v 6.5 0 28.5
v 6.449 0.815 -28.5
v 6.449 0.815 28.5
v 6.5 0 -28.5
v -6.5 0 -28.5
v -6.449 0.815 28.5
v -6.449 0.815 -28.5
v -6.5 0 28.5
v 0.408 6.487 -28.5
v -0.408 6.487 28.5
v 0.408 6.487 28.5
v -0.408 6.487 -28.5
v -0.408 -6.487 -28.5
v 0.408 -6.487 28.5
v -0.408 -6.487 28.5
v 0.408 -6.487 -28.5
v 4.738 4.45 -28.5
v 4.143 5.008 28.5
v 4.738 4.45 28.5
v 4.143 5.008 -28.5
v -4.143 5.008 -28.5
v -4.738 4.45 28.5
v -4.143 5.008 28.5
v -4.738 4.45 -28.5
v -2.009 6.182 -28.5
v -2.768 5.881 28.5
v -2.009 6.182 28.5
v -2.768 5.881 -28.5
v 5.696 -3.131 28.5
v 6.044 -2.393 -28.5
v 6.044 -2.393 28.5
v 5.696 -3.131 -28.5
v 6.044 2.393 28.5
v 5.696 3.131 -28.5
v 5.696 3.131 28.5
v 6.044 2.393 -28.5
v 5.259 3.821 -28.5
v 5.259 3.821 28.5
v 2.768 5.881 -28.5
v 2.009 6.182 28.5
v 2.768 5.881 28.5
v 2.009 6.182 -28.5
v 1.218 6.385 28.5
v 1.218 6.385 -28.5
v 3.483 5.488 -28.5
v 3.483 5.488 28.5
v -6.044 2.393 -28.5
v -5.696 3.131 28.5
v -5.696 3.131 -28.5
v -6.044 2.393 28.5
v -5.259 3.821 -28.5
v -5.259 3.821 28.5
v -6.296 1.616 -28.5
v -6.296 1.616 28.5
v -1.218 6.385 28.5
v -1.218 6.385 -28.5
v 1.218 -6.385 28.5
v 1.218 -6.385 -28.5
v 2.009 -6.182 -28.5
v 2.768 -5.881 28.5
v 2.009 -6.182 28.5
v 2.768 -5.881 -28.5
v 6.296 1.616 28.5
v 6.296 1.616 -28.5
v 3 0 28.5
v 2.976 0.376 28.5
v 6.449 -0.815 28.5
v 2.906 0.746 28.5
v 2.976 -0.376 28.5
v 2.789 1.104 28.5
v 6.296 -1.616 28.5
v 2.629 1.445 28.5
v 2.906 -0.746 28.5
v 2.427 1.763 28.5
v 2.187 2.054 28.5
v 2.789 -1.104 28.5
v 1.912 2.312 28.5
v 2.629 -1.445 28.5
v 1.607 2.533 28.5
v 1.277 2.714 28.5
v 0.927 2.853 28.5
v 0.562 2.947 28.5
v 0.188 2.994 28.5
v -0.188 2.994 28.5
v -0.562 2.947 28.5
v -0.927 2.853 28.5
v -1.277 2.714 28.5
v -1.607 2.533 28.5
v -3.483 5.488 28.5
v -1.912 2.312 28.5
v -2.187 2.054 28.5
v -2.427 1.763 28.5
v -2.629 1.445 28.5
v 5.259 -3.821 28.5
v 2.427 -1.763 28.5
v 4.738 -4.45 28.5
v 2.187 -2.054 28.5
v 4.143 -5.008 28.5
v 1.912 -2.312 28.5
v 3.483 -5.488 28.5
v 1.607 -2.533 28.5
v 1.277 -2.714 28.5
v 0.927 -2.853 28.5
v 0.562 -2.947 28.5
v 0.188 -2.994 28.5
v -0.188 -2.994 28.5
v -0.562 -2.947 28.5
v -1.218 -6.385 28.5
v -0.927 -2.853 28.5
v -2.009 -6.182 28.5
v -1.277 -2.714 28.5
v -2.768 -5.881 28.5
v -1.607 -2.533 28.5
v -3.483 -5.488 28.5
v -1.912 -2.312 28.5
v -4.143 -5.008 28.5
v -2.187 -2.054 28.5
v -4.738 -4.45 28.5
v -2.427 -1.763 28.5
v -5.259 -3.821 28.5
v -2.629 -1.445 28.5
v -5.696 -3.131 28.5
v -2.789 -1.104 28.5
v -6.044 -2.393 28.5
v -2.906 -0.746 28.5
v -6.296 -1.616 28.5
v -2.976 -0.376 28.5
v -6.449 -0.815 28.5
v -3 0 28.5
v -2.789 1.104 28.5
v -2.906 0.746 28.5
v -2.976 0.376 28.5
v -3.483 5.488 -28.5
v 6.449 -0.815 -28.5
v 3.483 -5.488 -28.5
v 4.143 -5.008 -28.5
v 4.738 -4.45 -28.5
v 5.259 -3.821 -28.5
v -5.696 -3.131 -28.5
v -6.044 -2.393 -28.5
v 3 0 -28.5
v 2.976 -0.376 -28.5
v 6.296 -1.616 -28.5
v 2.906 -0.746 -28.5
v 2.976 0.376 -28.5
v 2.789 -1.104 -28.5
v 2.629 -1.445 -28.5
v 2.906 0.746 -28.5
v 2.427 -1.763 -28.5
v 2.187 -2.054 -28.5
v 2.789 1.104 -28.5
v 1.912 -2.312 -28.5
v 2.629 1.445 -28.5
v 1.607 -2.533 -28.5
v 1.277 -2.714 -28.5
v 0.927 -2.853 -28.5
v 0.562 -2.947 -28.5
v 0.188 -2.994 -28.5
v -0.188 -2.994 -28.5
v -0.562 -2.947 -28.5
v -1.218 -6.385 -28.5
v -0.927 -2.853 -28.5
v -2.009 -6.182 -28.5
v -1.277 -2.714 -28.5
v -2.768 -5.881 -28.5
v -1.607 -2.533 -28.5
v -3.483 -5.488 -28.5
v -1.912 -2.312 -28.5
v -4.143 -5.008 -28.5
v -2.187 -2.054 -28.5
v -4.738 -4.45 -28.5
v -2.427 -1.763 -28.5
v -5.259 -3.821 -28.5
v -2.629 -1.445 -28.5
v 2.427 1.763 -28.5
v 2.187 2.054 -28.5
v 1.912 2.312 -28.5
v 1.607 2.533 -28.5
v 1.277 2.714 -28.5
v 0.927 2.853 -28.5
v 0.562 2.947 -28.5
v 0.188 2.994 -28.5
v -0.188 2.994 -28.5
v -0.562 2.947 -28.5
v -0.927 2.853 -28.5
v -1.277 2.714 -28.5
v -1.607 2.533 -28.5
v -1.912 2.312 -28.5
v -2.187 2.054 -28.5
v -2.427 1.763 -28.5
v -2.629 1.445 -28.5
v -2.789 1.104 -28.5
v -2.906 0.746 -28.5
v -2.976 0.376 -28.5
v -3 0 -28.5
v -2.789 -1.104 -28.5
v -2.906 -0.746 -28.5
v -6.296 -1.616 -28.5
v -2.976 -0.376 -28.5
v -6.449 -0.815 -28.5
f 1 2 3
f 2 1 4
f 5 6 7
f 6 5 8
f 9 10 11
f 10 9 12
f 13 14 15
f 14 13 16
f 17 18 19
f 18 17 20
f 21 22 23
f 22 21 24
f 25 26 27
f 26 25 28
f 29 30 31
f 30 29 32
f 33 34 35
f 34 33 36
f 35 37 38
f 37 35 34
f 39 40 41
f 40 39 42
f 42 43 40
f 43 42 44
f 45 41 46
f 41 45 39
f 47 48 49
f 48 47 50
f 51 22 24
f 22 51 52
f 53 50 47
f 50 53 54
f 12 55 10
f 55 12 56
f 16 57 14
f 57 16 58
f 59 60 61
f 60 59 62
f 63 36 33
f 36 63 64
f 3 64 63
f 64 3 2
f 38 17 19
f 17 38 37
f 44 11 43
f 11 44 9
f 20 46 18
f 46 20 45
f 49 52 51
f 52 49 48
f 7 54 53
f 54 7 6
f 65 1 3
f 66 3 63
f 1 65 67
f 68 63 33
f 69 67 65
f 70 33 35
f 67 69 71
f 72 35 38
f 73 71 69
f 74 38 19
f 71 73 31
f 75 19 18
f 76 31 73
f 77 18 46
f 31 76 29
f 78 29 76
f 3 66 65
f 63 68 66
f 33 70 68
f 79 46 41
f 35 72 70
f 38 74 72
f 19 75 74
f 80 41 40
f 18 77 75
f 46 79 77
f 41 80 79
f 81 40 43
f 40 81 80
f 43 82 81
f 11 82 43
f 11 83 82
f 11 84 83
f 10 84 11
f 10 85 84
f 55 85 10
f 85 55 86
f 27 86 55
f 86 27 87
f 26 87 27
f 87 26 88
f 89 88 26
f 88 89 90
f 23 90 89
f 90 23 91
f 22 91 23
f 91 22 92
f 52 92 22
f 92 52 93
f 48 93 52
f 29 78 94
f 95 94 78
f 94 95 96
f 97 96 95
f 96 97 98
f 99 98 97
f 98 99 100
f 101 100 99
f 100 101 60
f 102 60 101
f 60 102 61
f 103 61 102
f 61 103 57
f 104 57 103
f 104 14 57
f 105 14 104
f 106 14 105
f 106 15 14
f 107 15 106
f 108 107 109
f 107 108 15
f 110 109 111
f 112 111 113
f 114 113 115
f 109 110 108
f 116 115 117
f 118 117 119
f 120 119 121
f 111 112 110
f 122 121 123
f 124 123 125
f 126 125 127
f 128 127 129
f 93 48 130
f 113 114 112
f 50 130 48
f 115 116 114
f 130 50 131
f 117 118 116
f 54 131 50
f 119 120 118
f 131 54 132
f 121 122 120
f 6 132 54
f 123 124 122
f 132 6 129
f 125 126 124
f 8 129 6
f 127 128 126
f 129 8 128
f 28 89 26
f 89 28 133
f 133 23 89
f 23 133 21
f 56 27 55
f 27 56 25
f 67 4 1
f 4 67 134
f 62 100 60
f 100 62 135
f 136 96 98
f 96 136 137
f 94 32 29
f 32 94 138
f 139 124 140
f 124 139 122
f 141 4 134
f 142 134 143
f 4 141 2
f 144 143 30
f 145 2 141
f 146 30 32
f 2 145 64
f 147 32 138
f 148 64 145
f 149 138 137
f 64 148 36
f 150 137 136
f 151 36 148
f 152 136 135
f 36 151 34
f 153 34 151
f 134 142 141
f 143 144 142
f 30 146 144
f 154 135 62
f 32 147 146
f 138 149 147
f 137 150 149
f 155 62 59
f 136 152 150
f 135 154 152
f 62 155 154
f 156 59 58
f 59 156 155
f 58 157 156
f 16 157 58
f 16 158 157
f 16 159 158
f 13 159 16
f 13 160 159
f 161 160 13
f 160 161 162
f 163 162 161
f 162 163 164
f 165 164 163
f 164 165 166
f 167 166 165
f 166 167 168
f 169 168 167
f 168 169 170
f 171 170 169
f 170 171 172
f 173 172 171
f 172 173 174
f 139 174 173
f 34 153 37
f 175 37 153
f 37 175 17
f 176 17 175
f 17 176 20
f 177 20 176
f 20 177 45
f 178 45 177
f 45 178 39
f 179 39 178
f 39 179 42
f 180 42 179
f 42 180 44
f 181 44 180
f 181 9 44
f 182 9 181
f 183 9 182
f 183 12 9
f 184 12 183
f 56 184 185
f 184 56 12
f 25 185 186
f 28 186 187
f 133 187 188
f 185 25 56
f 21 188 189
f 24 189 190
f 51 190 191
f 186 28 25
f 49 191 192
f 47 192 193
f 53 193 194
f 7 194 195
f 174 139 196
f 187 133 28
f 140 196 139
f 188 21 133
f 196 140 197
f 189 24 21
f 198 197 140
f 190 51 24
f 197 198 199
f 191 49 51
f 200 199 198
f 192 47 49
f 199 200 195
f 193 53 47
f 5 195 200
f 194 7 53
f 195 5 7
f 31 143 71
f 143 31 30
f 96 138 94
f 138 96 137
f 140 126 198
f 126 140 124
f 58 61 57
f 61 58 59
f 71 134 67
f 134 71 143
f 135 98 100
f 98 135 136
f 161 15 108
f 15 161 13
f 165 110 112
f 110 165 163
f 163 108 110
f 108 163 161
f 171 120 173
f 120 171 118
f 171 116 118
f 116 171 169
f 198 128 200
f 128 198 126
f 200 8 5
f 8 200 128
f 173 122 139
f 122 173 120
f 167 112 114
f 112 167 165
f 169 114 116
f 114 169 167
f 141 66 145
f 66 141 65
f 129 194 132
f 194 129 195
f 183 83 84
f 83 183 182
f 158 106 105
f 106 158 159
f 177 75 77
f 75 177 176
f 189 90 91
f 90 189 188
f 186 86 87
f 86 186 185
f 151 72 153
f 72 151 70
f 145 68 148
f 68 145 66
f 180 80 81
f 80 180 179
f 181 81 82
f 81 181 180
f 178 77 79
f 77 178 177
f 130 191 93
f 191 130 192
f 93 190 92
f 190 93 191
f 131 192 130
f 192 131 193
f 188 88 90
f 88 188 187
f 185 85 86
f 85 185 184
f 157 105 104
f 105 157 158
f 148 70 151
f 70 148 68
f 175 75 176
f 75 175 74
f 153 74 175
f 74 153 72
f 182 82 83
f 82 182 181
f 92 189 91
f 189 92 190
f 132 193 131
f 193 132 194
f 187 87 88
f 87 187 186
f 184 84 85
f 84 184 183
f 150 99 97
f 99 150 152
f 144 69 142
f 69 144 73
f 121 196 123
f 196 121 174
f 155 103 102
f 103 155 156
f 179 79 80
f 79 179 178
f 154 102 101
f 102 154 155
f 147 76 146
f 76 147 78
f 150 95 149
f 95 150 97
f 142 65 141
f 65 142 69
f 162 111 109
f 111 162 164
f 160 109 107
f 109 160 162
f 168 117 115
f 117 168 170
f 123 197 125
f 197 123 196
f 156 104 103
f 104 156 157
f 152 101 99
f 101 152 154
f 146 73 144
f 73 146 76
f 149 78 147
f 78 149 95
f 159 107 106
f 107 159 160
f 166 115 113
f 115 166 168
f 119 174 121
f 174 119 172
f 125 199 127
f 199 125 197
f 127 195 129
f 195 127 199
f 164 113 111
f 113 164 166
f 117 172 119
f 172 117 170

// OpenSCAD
$fn = 50;


difference() {
	union() {
		translate(v = [0, 0, -28.5000000000]) {
			cylinder(h = 57, r = 6.5000000000);
		}
	}
	union() {
		translate(v = [0, 0, -100.0000000000]) {
			cylinder(h = 200, r = 3);
		}
	}
}
